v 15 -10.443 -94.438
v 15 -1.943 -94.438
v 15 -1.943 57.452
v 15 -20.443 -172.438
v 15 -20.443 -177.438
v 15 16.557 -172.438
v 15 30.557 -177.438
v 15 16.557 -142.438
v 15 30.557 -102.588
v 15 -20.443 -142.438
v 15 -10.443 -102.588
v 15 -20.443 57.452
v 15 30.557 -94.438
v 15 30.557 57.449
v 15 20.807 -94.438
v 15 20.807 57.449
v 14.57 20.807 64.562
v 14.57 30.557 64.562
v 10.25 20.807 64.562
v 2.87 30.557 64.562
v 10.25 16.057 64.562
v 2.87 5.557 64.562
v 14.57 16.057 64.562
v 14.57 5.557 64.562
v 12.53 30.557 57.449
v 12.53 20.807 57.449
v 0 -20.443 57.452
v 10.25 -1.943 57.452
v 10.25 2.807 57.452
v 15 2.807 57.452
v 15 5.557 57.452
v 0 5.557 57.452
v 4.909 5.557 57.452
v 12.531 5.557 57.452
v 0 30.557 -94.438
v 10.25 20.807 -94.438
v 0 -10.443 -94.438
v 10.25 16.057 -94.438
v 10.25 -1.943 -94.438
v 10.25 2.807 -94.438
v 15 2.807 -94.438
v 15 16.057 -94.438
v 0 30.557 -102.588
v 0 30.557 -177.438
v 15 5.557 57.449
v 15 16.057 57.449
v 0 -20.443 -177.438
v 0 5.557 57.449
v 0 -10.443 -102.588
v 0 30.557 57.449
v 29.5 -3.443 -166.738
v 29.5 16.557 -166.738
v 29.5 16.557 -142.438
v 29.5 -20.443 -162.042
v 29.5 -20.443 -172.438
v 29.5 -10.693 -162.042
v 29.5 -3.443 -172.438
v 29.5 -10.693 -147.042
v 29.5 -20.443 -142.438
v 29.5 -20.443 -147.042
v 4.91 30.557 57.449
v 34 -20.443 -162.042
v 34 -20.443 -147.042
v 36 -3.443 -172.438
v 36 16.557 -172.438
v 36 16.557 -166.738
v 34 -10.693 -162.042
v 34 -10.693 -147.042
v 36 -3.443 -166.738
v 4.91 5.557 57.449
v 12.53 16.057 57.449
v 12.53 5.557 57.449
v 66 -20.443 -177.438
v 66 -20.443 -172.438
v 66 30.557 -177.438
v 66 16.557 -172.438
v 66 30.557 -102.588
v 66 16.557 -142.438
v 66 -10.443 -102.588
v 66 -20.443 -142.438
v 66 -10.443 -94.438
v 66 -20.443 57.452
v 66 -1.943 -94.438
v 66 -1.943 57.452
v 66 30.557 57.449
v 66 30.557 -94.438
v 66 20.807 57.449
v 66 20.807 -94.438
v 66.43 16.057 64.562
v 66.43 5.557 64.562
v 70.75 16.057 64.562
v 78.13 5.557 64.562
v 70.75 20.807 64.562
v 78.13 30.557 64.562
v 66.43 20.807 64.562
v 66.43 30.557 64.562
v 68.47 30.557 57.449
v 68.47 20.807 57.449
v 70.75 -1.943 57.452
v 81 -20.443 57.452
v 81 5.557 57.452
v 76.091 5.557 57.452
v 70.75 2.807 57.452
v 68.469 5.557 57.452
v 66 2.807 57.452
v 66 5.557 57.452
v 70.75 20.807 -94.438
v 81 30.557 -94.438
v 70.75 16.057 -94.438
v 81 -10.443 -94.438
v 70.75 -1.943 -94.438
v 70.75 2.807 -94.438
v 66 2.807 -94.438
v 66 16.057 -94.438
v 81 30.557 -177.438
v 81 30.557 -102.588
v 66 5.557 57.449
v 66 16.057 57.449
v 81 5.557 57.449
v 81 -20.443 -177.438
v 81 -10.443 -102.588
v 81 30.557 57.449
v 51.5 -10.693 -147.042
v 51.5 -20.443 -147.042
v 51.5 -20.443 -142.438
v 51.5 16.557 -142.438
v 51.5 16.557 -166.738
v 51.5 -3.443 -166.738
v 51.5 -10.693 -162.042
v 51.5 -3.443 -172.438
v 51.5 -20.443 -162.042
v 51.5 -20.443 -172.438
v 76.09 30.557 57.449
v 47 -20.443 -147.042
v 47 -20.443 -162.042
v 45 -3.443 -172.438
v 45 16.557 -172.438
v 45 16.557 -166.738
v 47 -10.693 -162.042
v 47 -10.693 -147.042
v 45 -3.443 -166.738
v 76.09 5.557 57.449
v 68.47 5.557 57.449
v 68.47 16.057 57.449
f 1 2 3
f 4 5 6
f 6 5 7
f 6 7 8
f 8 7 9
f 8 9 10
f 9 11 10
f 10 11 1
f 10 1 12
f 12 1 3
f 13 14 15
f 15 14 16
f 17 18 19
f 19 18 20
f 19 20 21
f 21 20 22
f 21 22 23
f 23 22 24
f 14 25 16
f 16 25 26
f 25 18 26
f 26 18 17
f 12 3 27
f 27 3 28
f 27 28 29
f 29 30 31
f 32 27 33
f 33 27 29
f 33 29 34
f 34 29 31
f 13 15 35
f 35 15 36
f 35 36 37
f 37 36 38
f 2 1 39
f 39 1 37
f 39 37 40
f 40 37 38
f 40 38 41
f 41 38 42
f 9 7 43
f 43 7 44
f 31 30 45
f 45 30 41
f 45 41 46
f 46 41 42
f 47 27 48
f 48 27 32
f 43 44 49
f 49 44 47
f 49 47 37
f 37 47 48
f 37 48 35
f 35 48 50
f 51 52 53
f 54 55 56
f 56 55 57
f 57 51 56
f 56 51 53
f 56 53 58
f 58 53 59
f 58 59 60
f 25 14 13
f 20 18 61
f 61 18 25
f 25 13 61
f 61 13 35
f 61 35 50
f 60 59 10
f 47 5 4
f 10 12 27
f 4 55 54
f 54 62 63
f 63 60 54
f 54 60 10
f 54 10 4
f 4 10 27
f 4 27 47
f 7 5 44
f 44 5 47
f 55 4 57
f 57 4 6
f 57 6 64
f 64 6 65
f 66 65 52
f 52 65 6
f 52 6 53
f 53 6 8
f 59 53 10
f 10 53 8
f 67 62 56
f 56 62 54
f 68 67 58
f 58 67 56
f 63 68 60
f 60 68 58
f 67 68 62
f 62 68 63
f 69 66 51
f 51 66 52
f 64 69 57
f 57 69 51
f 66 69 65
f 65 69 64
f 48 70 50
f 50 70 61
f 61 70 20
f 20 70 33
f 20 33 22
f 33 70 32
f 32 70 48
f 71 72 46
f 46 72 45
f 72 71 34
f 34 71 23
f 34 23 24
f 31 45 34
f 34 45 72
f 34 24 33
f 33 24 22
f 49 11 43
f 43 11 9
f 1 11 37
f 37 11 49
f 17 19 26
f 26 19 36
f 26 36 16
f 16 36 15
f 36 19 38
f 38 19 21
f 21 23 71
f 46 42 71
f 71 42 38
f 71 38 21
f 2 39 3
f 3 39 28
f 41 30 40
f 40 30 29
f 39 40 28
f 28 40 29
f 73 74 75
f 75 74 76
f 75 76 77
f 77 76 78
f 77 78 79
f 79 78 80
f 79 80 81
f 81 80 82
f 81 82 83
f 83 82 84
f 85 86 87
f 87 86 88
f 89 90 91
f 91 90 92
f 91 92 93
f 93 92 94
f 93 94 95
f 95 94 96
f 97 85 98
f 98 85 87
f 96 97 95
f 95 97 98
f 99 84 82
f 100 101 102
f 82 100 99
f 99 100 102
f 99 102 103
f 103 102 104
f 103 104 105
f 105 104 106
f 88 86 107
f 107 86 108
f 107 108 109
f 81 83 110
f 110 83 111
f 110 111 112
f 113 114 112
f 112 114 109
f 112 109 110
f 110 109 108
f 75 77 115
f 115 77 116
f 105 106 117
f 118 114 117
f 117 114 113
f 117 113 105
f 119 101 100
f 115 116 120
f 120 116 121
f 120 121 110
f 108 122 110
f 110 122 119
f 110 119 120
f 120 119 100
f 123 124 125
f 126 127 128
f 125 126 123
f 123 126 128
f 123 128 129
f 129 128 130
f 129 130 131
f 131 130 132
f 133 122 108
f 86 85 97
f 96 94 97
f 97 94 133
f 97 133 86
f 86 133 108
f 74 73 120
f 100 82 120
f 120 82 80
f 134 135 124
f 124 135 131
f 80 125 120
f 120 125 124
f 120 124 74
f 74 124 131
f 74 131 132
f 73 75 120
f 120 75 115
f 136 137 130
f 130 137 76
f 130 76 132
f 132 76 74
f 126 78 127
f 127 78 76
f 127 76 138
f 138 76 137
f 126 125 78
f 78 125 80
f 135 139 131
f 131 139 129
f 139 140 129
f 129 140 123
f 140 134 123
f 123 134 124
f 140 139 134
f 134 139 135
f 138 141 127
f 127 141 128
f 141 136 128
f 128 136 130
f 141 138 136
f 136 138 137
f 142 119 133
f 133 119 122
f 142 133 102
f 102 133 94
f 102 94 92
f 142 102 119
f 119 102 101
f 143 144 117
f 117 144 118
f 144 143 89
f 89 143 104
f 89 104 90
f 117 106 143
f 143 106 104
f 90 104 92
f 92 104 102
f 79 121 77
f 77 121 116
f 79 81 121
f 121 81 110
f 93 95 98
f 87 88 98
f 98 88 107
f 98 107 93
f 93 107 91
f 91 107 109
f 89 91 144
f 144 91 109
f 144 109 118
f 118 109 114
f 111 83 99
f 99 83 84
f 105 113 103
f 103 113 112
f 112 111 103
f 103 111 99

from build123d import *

# Parameters (mm, degrees)
SKETCH1_W           = 242
SKETCH1_H           = 51
BOSS_EXTRUDE1_DEPTH = 15
SKETCH26_W          = 30
SKETCH26_H          = 37
BOSS_EXTRUDE3_DEPTH = 29.5
SKETCH28_W          = 15
SKETCH28_H          = 9.75
BOSS_EXTRUDE5_DEPTH = 4.5
SKETCH29_W          = 5.7
SKETCH29_H          = 20
BOSS_EXTRUDE6_DEPTH = 6.5
CUT_EXTRUDE8_DEPTH  = 25
SKETCH13_W          = 15
SKETCH13_H          = 7.11
CUT_EXTRUDE9_DEPTH  = 26
SKETCH17_W          = 15
SKETCH17_H          = 8.15
CUT_EXTRUDE10_DEPTH = 41
SKETCH7_W           = 4.75
SKETCH7_H           = 4.75
CUT_EXTRUDE5_DEPTH  = 165


with BuildPart() as part:
    # Sketch1 → Boss-Extrude1 (new body)
    with BuildSketch(Plane(origin=(0, 0, 0), x_dir=(0, 0, -1), z_dir=(1, 0, 0))):
        with Locations((56.437921078, 5.057266603)):
            Rectangle(SKETCH1_W, SKETCH1_H)
    extrude(amount=BOSS_EXTRUDE1_DEPTH)

    # Sketch26 → Boss-Extrude3 (add)
    with BuildSketch(Plane.ZY):
        with Locations((-157.437921078, -1.942733397)):
            Rectangle(SKETCH26_W, SKETCH26_H)
    extrude(amount=-BOSS_EXTRUDE3_DEPTH)

    # Sketch28 → Boss-Extrude5 (add)
    with BuildSketch(Plane(origin=(29.5, 0, 0), x_dir=(0, 0, -1), z_dir=(1, 0, 0))):
        with Locations((154.541661602, -15.567733397)):
            Rectangle(SKETCH28_W, SKETCH28_H)
    extrude(amount=BOSS_EXTRUDE5_DEPTH)

    # Sketch29 → Boss-Extrude6 (add)
    with BuildSketch(Plane(origin=(29.5, 0, 0), x_dir=(0, 0, -1), z_dir=(1, 0, 0))):
        with Locations((169.587921078, 6.557266603)):
            Rectangle(SKETCH29_W, SKETCH29_H)
    extrude(amount=BOSS_EXTRUDE6_DEPTH)

    # Sketch12 → Cut-Extrude8 (cut)
    with BuildSketch(Plane(origin=(0, 30.557266603, 0), x_dir=(1, 0, 0), z_dir=(0, 1, 0))):
        Polygon((0, -57.448742372), (4.909716433, -57.448742372), (2.87, -64.562078922), (0, -64.562078922), align=None)
        Polygon((15, -57.448742372), (15, -64.562078922), (14.57, -64.562078922), (12.530283567, -57.448742372), align=None)
    extrude(amount=-CUT_EXTRUDE8_DEPTH, mode=Mode.SUBTRACT)

    # Sketch13 → Cut-Extrude9 (cut)
    with BuildSketch(Plane.XZ.offset(20.442733397)):
        with Locations((7.5, 61.007078922)):
            Rectangle(SKETCH13_W, SKETCH13_H)
    extrude(amount=-CUT_EXTRUDE9_DEPTH, mode=Mode.SUBTRACT)

    # Sketch17 → Cut-Extrude10 (cut)
    with BuildSketch(Plane(origin=(0, 30.557266603, 0), x_dir=(1, 0, 0), z_dir=(0, 1, 0))):
        with Locations((7.5, 98.512921078)):
            Rectangle(SKETCH17_W, SKETCH17_H)
    extrude(amount=-CUT_EXTRUDE10_DEPTH, mode=Mode.SUBTRACT)

    # Sketch7 → Cut-Extrude5 (cut)
    with BuildSketch(Plane(origin=(0, 0, -94.437921078), x_dir=(-1, 0, 0), z_dir=(0, 0, -1))):
        with Locations((-12.625, 0.432266603)):
            Rectangle(SKETCH7_W, SKETCH7_H)
        with Locations((-12.625, 18.432266603)):
            Rectangle(SKETCH7_W, SKETCH7_H)
    extrude(amount=-CUT_EXTRUDE5_DEPTH, mode=Mode.SUBTRACT)


with BuildPart() as body_2:
    # Mirror4: mirrored copy
    add(part.part.mirror(Plane(origin=(40.5, 0, 0), x_dir=(0, 0, 1), z_dir=(1, 0, 0))))


solid = Compound([part.part, body_2.part])
